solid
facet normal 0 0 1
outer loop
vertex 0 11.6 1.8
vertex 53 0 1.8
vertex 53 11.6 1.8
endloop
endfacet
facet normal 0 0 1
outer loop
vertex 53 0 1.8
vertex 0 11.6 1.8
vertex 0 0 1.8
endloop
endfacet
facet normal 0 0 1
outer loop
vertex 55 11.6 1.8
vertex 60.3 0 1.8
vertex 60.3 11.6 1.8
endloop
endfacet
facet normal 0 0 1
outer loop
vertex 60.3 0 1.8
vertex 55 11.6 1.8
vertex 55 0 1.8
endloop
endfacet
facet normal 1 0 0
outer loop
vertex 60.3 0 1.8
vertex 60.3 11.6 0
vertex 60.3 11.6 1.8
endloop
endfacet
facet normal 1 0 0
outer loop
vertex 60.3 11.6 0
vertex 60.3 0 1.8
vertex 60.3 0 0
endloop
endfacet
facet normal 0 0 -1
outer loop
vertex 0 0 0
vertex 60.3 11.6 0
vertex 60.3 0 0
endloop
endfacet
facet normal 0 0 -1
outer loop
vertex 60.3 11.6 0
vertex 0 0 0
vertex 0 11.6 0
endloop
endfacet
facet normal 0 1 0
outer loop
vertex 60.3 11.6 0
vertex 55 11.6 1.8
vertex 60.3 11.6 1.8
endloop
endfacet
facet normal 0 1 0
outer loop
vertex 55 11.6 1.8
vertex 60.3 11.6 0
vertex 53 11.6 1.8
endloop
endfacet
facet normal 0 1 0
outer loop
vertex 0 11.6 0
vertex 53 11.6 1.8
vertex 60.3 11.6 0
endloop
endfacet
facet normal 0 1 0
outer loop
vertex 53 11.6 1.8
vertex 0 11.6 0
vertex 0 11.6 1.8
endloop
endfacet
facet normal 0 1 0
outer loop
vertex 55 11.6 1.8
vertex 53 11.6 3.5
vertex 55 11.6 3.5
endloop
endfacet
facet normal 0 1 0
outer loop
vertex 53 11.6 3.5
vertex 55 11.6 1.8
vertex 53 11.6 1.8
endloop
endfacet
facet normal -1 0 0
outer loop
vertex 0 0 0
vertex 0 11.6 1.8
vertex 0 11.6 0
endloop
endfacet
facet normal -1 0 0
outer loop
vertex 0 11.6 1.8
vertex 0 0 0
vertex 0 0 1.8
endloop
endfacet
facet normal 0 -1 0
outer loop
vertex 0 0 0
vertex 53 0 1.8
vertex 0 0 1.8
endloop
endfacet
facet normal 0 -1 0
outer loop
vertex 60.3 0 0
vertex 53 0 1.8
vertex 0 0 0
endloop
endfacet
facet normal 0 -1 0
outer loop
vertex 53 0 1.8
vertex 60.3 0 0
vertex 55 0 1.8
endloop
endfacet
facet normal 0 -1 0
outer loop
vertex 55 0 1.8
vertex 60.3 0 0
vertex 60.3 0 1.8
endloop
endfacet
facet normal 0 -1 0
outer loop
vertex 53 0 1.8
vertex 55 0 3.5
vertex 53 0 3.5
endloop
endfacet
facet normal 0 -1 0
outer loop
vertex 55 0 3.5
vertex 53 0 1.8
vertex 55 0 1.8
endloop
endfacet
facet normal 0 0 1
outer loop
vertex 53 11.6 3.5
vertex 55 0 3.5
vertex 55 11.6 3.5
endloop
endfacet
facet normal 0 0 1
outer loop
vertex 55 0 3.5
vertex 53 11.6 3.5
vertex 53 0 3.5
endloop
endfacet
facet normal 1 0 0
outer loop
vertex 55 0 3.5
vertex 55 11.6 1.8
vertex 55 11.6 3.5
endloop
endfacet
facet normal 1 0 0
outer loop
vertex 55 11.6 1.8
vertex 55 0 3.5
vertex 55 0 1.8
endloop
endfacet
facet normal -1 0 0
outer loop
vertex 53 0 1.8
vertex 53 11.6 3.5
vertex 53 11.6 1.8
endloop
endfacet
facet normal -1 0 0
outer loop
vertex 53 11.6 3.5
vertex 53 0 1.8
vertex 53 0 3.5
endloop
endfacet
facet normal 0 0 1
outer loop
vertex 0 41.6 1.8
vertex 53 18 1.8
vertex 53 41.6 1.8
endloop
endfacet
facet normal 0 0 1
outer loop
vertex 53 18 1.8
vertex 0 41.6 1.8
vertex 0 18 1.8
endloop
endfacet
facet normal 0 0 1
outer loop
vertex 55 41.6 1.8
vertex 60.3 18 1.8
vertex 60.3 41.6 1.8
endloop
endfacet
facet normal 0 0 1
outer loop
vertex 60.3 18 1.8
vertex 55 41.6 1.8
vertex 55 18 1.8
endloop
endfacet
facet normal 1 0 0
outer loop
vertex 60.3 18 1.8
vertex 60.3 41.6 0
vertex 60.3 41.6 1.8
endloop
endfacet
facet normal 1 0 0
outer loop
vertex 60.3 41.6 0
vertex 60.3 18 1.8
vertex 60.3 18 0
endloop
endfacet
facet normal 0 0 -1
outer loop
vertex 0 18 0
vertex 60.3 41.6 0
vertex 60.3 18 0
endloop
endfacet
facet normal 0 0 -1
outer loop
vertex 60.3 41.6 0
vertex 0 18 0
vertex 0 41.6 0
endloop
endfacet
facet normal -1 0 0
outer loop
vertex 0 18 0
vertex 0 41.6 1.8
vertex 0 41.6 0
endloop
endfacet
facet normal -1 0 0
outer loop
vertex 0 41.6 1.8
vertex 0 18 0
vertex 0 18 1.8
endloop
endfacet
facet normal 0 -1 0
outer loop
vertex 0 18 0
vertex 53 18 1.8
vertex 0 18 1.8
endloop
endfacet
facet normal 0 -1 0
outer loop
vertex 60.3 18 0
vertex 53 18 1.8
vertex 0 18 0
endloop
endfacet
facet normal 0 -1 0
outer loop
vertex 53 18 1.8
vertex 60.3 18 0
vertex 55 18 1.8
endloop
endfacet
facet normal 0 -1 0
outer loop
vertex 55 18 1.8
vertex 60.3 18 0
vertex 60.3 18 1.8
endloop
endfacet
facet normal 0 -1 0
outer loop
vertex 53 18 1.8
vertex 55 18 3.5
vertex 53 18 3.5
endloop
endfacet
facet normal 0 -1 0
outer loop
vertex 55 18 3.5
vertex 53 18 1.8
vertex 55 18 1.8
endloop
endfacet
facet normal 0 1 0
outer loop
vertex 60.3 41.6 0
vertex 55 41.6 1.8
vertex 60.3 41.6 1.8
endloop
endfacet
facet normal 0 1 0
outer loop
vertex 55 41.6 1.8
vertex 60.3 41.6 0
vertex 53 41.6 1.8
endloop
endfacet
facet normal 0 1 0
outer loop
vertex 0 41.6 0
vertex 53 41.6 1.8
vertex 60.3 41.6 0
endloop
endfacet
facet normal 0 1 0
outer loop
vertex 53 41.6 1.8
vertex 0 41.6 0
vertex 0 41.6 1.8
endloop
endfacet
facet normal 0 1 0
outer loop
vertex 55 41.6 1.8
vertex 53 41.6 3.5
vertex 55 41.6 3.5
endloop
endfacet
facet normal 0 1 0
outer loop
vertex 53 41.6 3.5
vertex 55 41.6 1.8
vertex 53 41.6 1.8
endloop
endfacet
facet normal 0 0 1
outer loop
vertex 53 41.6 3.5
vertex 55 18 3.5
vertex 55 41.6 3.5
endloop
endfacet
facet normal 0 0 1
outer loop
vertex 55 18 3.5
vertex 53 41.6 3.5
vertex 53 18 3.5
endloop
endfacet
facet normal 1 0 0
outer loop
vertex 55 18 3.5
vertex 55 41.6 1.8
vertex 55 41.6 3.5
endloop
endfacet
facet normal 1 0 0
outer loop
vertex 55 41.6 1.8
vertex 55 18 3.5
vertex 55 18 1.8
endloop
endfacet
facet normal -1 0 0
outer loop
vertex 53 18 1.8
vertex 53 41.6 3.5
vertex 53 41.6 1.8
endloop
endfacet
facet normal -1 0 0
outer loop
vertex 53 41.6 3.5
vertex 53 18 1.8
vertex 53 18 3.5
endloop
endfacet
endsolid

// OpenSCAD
// file: ../components/light_box_002.scad
// ============================================================================
// light_box_002.scad — Hộp đèn nền "LED XUÔI" (G1) — đoạn DƯỚI của vỏ liền (G2)
// ----------------------------------------------------------------------------
// KHÁC _001: NÚT BỊT KHE nâng cấp thành CỘT ĐỠ KHAY chữ L (thay vòng đỡ liền vỏ
// của tube_body_001 — vòng đó chặn đường luồn khay OD44 từ đáy, đã bỏ ở _002):
//  - Thân nút trượt trong khe dọc ±X như cũ (bịt sáng), kéo dài từ vành đáy
//    (z=−61.5, chân đứng CÙNG MẶT BÀN với đế) lên z=−1.2 (chừa 0.2 dưới ngạnh/hộp loe).
//  - GỜ NGANG thò vào lòng ống (sâu 1.7 → r21.4): mặt trên tại z=−6.5 ĐỠ ĐÁY VÁY
//    KHAY (vành r21.35..22). Không lấn cột sáng Ø40 (r20); màng Ø42 (r21) lọt qua.
//  - Tải: khay + nước (~40g) → 2 gờ ±X → thân nút → mặt bàn. Cắm ma sát; có thể
//    chấm keo cố định vĩnh viễn (nút rẻ, in lại dễ).
// THỨ TỰ LẮP TỪ ĐÁY (bắt buộc): (1) khay luồn lên (ngạnh theo khe dọc, giữ tay);
// (2) 2 nút bịt trượt vào khe từ dưới → gờ đỡ khay, thả tay; (3) vách LED + module
// + màng khuếch tán (đặt sẵn trên 3 cột) đưa lên, bắt 2 ốc M3 ±Y; xong.
//
// Hệ toạ độ chung. Phạm vi: z = −61.5 (vành đáy = CHÂN ĐẾ) .. −8 (nối tube_body).
// Xếp lớp từ trên xuống:
//   z −6.5      : đáy khay tì lên GỜ 2 nút bịt (vòng đỡ liền vỏ ĐÃ BỎ)
//   z −12..−8   : MÀNG KHUẾCH TÁN xếp lớp 0–4mm (giấy can/mica mờ, Ø42) ĐẶT TRÊN
//                 3 CỘT từ vách — thêm/bớt lớp để chỉnh độ tán
//   z −20..−12  : BUỒNG TRỘN 8mm (khử hotspot nguồn điểm)
//   z = −20     : ĐẦU LED của module (hướng THẲNG LÊN — "LED xuôi", KHÔNG bounce)
//   z −38.75    : mặt VÁCH ĐỠ RỜI (G5): đĩa Ø45.4 thả vào lòng ống, 2 ỐC M3 XUYÊN
//                 NGANG thành ống tại ±Y (tránh 2 khe dọc ±X) vào mép vách;
//                 module xỏ qua LỖ GIỮA vách (tiết diện +0.4 — cắm ma sát)
//   z −57.5     : đáy module (nửa pin nằm dưới vách)
//   z −61.5     : vành đáy ống = chân đế; HỞ GIỮA để thao tác/thay pin từ dưới
// Mặt trong khoang đèn: TRẮNG mờ (sơn/dán trắng — thân in đen).
// ============================================================================
include <../constants.scad>

EPS = 0.05;
shelf_d = tube_id - 2*shelf_clr;   // Ø45.4

// ---------------- Thân đoạn dưới (in liền với tube_body thành 1 khối) ----------------
module light_box_body() {
    color(col_plastic_w) difference() {
        translate([0, 0, z_housing_bot])
            cylinder(d = tube_od, h = z_seat_bot - z_housing_bot, $fn = 120);
        // Lòng ống
        translate([0, 0, z_housing_bot - EPS])
            cylinder(d = tube_id, h = z_seat_bot - z_housing_bot + 2*EPS, $fn = 120);
        // 2 khe dọc tiếp nối (mở từ vành đáy lên hết đoạn này)
        for (p = [[1, slot_w_out], [-1, slot_w_in]])
            translate([p[0] * (tube_id/2 + tube_wall/2), 0, (z_seat_bot + z_housing_bot)/2])
                cube([tube_wall + 2, p[1], z_seat_bot - z_housing_bot + 2*EPS], center = true);
        // 2 lỗ M3 ngang ±Y bắt vách đỡ (tự-ren vào mép vách)
        for (sy = [1, -1])
            translate([0, sy * (tube_id/2 + tube_wall/2), shelf_screw_z])
                rotate([90, 0, 0])
                    cylinder(d = mount_hole_lid_d, h = tube_wall + 2, center = true, $fn = 24);
    }
}

// ---------------- Vách đỡ RỜI (G5) — chi tiết in riêng ----------------
module led_shelf() {
    color(col_plastic_w) {
        difference() {
            translate([0, 0, z_shelf_top - shelf_t])
                cylinder(d = shelf_d, h = shelf_t, $fn = 96);
            // Lỗ giữa xỏ module (fit ma sát +0.4)
            translate([-(led_mod_w + 2*shelf_hole_clr)/2, -(led_mod_d + 2*shelf_hole_clr)/2,
                       z_shelf_top - shelf_t - EPS])
                cube([led_mod_w + 2*shelf_hole_clr, led_mod_d + 2*shelf_hole_clr, shelf_t + 2*EPS]);
            // 2 lỗ mồi M3 ở mép (±Y) — ốc xuyên thành ống tự-ren vào đây
            for (sy = [1, -1])
                translate([0, sy * shelf_d/2, shelf_screw_z])
                    rotate([90, 0, 0])
                        cylinder(d = 2.5, h = 12, center = true, $fn = 24);
        }
        // 3 cột đỡ màng khuếch tán (lên tới z_diff_bot)
        for (a = [30, 150, 270])
            rotate([0, 0, a])
                translate([16, 0, z_shelf_top])
                    cylinder(d = 4, h = z_diff_bot - z_shelf_top, $fn = 24);
    }
}

// ---------------- Màng khuếch tán (mock — giấy can/mica mờ, MUA/CẮT) ----------------
module diffuser_stack(layers = 2, layer_t = 1.0) {
    color(col_diffuser)
        for (i = [0:layers-1])
            translate([0, 0, z_diff_top - (i + 1) * layer_t - i * 0.2])
                cylinder(d = bl_diff_d, h = layer_t, $fn = 96);
}

// ---------------- Nút bịt khe KIÊM CỘT ĐỠ KHAY (in riêng, luồn từ đáy SAU khay) ---
// Gốc cục bộ: x=0 = mặt TRONG thân nút (phía lòng ống, +x hướng ra ngoài),
// z=0 = chân nút (= vành đáy vỏ z_housing_bot khi lắp). Chữ L: thân trong khe
// + gờ đỡ thò vào lòng ống, mặt trên gờ = z_tray_bot (đáy váy khay tì lên).
// Bịt sáng: thân che khe từ vành đáy tới z=−1.2 — kín toàn bộ khoang đèn (<−8).
module slot_plug(w = slot_w_out) {
    plug_h  = plug_top_z - z_housing_bot;        // 60.3: chân → sát dưới ngạnh
    tab_top = z_tray_bot - z_housing_bot;        // 55.0: mặt trên gờ đỡ (cục bộ)
    color(col_plastic) union() {
        // Thân trượt trong khe (dày = thành − 0.2)
        cube([tube_wall - 0.2, w - 2*tol, plug_h]);
        // Gờ đỡ khay: thò vào lòng ống plug_tab_d, chồng lấn 1mm vào thân
        // (giao dương — tránh mặt trùng gây non-manifold)
        translate([-plug_tab_d, 0, tab_top - plug_tab_h])
            cube([plug_tab_d + 1, w - 2*tol, plug_tab_h]);
    }
}

// ---------------- Xem lẻ ----------------
light_box_body();
led_shelf();
diffuser_stack();
// 2 nút bịt kiêm cột đỡ đặt đúng vị trí (+X thật, −X mirror)
translate([tube_id/2 + 0.1, -(slot_w_out - 2*tol)/2, z_housing_bot]) slot_plug(slot_w_out);
mirror([1, 0, 0])
    translate([tube_id/2 + 0.1, -(slot_w_in - 2*tol)/2, z_housing_bot]) slot_plug(slot_w_in);
// Module LED đặt đúng vị trí (ghost)
%translate([0, 0, z_led_tip]) rotate([0, 0, 90])
    translate([0, 0, 0]) {
        translate([-led_mod_w/2, -led_mod_d/2, -led_mod_h]) cube([led_mod_w, led_mod_d, led_mod_h]);
    }
// main file
// print_slot_plugs.scad — 2 nút bịt khe dọc KIÊM CỘT ĐỠ KHAY (light_box_002).
// Chữ L: thân bịt khe (chống lọt sáng khoang đèn) + gờ ngang đỡ đáy váy khay
// tại z=−6.5 (thay vòng đỡ liền vỏ đã bỏ). Chân nút đứng cùng mặt bàn với đế.
// In NẰM: mặt ngoài thân úp xuống bàn, gờ đỡ thành gân nổi phía trên — không support.
// Nút hẹp = khe RA (+X, 12); nút rộng = khe VÀO (−X, 24).
include <../constants.scad>
use <../components/light_box_002.scad>

translate([0, 0, tube_wall - 0.2]) rotate([0, 90, 0]) slot_plug(slot_w_out);
translate([0, slot_w_out + 6, tube_wall - 0.2]) rotate([0, 90, 0]) slot_plug(slot_w_in);
